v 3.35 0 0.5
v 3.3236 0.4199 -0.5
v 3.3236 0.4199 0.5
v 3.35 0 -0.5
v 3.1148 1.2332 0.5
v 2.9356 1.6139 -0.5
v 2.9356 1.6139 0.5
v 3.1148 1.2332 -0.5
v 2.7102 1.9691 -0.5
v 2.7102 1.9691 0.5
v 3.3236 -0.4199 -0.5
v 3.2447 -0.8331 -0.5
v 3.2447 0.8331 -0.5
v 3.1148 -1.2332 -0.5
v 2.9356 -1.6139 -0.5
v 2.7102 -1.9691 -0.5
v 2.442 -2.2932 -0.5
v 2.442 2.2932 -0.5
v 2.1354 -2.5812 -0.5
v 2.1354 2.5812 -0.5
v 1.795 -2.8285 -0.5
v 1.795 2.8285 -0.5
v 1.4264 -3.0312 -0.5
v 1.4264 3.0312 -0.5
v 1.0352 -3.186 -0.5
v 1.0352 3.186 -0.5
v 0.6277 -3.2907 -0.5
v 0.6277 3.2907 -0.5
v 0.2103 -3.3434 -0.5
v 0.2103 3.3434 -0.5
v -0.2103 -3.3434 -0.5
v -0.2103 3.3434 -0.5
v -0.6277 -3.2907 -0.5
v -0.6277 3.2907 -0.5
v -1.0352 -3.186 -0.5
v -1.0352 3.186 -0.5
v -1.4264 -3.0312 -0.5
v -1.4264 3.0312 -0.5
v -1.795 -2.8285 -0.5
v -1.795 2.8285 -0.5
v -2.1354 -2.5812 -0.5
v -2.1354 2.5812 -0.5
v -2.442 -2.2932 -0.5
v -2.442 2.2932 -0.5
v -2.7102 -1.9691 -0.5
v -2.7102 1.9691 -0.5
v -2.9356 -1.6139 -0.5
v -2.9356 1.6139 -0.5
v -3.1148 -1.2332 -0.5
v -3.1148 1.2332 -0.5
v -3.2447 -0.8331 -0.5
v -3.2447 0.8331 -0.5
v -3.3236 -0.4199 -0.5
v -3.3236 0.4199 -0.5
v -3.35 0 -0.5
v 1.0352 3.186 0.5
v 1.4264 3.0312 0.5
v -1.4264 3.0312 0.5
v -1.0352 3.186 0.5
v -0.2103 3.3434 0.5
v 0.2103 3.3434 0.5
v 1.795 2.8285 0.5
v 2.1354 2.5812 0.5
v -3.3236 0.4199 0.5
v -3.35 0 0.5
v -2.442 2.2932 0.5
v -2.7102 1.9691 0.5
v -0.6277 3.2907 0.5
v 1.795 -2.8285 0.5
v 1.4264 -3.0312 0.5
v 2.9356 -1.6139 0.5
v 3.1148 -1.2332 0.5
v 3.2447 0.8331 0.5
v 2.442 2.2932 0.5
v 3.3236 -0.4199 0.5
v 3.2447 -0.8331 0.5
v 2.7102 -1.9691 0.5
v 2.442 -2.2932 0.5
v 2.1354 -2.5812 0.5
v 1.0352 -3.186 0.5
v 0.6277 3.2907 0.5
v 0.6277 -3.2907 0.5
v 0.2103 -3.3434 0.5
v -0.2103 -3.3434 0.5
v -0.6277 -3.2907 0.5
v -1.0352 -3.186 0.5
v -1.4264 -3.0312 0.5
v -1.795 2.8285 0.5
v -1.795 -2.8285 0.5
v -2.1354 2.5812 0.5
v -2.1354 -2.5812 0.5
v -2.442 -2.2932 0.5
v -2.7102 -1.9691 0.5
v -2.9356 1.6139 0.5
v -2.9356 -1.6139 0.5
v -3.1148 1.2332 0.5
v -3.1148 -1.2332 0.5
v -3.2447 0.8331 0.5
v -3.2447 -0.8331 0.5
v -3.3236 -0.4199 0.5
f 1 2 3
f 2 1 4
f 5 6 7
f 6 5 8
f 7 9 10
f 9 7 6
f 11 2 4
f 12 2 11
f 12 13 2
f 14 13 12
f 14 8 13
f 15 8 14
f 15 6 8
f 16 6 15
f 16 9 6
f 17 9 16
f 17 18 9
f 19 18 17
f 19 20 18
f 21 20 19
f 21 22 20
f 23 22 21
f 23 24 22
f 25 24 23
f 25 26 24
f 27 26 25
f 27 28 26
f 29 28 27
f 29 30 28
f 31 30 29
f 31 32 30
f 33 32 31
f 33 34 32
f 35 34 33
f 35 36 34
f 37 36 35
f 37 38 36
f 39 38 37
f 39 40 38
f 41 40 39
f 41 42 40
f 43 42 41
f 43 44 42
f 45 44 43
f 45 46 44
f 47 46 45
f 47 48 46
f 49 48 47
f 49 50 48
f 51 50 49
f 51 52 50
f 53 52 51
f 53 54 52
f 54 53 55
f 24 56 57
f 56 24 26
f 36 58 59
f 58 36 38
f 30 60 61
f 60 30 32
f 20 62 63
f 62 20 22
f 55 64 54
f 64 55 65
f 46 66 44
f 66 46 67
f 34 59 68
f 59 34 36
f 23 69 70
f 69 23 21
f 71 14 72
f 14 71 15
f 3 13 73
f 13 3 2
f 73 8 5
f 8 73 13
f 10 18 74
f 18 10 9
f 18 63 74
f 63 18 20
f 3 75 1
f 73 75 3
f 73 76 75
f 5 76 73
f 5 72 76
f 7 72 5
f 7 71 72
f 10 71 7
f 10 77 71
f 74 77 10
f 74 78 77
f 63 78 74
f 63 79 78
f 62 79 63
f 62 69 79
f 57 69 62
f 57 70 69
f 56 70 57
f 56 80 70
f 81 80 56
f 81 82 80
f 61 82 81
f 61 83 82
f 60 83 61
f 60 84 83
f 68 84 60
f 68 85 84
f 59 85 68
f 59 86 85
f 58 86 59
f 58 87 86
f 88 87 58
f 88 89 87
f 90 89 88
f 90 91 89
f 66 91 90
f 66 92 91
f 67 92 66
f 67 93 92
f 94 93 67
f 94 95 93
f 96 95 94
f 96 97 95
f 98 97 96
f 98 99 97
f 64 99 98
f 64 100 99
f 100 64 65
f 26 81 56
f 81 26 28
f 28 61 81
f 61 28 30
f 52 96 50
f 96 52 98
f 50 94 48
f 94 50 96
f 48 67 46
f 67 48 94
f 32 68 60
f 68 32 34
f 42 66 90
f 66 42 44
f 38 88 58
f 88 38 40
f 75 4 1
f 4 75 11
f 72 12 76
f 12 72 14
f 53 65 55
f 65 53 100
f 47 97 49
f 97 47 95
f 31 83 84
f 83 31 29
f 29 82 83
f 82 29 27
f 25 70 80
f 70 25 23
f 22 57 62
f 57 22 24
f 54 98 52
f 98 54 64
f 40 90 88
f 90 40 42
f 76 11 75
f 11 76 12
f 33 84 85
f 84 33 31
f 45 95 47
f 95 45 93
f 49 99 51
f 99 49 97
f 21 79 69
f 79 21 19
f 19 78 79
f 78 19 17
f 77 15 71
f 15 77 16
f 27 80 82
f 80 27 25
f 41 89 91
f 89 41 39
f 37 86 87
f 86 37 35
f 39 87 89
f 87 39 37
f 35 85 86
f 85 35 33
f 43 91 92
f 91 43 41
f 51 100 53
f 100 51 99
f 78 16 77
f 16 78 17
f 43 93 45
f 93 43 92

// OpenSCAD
$fn = 50;


difference() {
	union() {
		translate(v = [0, 0, -0.5000000000]) {
			cylinder(h = 1, r = 3.3500000000);
		}
	}
	union() {
		translate(v = [0, 0, -100.0000000000]) {
			cylinder(h = 200, r = 0);
		}
	}
}
